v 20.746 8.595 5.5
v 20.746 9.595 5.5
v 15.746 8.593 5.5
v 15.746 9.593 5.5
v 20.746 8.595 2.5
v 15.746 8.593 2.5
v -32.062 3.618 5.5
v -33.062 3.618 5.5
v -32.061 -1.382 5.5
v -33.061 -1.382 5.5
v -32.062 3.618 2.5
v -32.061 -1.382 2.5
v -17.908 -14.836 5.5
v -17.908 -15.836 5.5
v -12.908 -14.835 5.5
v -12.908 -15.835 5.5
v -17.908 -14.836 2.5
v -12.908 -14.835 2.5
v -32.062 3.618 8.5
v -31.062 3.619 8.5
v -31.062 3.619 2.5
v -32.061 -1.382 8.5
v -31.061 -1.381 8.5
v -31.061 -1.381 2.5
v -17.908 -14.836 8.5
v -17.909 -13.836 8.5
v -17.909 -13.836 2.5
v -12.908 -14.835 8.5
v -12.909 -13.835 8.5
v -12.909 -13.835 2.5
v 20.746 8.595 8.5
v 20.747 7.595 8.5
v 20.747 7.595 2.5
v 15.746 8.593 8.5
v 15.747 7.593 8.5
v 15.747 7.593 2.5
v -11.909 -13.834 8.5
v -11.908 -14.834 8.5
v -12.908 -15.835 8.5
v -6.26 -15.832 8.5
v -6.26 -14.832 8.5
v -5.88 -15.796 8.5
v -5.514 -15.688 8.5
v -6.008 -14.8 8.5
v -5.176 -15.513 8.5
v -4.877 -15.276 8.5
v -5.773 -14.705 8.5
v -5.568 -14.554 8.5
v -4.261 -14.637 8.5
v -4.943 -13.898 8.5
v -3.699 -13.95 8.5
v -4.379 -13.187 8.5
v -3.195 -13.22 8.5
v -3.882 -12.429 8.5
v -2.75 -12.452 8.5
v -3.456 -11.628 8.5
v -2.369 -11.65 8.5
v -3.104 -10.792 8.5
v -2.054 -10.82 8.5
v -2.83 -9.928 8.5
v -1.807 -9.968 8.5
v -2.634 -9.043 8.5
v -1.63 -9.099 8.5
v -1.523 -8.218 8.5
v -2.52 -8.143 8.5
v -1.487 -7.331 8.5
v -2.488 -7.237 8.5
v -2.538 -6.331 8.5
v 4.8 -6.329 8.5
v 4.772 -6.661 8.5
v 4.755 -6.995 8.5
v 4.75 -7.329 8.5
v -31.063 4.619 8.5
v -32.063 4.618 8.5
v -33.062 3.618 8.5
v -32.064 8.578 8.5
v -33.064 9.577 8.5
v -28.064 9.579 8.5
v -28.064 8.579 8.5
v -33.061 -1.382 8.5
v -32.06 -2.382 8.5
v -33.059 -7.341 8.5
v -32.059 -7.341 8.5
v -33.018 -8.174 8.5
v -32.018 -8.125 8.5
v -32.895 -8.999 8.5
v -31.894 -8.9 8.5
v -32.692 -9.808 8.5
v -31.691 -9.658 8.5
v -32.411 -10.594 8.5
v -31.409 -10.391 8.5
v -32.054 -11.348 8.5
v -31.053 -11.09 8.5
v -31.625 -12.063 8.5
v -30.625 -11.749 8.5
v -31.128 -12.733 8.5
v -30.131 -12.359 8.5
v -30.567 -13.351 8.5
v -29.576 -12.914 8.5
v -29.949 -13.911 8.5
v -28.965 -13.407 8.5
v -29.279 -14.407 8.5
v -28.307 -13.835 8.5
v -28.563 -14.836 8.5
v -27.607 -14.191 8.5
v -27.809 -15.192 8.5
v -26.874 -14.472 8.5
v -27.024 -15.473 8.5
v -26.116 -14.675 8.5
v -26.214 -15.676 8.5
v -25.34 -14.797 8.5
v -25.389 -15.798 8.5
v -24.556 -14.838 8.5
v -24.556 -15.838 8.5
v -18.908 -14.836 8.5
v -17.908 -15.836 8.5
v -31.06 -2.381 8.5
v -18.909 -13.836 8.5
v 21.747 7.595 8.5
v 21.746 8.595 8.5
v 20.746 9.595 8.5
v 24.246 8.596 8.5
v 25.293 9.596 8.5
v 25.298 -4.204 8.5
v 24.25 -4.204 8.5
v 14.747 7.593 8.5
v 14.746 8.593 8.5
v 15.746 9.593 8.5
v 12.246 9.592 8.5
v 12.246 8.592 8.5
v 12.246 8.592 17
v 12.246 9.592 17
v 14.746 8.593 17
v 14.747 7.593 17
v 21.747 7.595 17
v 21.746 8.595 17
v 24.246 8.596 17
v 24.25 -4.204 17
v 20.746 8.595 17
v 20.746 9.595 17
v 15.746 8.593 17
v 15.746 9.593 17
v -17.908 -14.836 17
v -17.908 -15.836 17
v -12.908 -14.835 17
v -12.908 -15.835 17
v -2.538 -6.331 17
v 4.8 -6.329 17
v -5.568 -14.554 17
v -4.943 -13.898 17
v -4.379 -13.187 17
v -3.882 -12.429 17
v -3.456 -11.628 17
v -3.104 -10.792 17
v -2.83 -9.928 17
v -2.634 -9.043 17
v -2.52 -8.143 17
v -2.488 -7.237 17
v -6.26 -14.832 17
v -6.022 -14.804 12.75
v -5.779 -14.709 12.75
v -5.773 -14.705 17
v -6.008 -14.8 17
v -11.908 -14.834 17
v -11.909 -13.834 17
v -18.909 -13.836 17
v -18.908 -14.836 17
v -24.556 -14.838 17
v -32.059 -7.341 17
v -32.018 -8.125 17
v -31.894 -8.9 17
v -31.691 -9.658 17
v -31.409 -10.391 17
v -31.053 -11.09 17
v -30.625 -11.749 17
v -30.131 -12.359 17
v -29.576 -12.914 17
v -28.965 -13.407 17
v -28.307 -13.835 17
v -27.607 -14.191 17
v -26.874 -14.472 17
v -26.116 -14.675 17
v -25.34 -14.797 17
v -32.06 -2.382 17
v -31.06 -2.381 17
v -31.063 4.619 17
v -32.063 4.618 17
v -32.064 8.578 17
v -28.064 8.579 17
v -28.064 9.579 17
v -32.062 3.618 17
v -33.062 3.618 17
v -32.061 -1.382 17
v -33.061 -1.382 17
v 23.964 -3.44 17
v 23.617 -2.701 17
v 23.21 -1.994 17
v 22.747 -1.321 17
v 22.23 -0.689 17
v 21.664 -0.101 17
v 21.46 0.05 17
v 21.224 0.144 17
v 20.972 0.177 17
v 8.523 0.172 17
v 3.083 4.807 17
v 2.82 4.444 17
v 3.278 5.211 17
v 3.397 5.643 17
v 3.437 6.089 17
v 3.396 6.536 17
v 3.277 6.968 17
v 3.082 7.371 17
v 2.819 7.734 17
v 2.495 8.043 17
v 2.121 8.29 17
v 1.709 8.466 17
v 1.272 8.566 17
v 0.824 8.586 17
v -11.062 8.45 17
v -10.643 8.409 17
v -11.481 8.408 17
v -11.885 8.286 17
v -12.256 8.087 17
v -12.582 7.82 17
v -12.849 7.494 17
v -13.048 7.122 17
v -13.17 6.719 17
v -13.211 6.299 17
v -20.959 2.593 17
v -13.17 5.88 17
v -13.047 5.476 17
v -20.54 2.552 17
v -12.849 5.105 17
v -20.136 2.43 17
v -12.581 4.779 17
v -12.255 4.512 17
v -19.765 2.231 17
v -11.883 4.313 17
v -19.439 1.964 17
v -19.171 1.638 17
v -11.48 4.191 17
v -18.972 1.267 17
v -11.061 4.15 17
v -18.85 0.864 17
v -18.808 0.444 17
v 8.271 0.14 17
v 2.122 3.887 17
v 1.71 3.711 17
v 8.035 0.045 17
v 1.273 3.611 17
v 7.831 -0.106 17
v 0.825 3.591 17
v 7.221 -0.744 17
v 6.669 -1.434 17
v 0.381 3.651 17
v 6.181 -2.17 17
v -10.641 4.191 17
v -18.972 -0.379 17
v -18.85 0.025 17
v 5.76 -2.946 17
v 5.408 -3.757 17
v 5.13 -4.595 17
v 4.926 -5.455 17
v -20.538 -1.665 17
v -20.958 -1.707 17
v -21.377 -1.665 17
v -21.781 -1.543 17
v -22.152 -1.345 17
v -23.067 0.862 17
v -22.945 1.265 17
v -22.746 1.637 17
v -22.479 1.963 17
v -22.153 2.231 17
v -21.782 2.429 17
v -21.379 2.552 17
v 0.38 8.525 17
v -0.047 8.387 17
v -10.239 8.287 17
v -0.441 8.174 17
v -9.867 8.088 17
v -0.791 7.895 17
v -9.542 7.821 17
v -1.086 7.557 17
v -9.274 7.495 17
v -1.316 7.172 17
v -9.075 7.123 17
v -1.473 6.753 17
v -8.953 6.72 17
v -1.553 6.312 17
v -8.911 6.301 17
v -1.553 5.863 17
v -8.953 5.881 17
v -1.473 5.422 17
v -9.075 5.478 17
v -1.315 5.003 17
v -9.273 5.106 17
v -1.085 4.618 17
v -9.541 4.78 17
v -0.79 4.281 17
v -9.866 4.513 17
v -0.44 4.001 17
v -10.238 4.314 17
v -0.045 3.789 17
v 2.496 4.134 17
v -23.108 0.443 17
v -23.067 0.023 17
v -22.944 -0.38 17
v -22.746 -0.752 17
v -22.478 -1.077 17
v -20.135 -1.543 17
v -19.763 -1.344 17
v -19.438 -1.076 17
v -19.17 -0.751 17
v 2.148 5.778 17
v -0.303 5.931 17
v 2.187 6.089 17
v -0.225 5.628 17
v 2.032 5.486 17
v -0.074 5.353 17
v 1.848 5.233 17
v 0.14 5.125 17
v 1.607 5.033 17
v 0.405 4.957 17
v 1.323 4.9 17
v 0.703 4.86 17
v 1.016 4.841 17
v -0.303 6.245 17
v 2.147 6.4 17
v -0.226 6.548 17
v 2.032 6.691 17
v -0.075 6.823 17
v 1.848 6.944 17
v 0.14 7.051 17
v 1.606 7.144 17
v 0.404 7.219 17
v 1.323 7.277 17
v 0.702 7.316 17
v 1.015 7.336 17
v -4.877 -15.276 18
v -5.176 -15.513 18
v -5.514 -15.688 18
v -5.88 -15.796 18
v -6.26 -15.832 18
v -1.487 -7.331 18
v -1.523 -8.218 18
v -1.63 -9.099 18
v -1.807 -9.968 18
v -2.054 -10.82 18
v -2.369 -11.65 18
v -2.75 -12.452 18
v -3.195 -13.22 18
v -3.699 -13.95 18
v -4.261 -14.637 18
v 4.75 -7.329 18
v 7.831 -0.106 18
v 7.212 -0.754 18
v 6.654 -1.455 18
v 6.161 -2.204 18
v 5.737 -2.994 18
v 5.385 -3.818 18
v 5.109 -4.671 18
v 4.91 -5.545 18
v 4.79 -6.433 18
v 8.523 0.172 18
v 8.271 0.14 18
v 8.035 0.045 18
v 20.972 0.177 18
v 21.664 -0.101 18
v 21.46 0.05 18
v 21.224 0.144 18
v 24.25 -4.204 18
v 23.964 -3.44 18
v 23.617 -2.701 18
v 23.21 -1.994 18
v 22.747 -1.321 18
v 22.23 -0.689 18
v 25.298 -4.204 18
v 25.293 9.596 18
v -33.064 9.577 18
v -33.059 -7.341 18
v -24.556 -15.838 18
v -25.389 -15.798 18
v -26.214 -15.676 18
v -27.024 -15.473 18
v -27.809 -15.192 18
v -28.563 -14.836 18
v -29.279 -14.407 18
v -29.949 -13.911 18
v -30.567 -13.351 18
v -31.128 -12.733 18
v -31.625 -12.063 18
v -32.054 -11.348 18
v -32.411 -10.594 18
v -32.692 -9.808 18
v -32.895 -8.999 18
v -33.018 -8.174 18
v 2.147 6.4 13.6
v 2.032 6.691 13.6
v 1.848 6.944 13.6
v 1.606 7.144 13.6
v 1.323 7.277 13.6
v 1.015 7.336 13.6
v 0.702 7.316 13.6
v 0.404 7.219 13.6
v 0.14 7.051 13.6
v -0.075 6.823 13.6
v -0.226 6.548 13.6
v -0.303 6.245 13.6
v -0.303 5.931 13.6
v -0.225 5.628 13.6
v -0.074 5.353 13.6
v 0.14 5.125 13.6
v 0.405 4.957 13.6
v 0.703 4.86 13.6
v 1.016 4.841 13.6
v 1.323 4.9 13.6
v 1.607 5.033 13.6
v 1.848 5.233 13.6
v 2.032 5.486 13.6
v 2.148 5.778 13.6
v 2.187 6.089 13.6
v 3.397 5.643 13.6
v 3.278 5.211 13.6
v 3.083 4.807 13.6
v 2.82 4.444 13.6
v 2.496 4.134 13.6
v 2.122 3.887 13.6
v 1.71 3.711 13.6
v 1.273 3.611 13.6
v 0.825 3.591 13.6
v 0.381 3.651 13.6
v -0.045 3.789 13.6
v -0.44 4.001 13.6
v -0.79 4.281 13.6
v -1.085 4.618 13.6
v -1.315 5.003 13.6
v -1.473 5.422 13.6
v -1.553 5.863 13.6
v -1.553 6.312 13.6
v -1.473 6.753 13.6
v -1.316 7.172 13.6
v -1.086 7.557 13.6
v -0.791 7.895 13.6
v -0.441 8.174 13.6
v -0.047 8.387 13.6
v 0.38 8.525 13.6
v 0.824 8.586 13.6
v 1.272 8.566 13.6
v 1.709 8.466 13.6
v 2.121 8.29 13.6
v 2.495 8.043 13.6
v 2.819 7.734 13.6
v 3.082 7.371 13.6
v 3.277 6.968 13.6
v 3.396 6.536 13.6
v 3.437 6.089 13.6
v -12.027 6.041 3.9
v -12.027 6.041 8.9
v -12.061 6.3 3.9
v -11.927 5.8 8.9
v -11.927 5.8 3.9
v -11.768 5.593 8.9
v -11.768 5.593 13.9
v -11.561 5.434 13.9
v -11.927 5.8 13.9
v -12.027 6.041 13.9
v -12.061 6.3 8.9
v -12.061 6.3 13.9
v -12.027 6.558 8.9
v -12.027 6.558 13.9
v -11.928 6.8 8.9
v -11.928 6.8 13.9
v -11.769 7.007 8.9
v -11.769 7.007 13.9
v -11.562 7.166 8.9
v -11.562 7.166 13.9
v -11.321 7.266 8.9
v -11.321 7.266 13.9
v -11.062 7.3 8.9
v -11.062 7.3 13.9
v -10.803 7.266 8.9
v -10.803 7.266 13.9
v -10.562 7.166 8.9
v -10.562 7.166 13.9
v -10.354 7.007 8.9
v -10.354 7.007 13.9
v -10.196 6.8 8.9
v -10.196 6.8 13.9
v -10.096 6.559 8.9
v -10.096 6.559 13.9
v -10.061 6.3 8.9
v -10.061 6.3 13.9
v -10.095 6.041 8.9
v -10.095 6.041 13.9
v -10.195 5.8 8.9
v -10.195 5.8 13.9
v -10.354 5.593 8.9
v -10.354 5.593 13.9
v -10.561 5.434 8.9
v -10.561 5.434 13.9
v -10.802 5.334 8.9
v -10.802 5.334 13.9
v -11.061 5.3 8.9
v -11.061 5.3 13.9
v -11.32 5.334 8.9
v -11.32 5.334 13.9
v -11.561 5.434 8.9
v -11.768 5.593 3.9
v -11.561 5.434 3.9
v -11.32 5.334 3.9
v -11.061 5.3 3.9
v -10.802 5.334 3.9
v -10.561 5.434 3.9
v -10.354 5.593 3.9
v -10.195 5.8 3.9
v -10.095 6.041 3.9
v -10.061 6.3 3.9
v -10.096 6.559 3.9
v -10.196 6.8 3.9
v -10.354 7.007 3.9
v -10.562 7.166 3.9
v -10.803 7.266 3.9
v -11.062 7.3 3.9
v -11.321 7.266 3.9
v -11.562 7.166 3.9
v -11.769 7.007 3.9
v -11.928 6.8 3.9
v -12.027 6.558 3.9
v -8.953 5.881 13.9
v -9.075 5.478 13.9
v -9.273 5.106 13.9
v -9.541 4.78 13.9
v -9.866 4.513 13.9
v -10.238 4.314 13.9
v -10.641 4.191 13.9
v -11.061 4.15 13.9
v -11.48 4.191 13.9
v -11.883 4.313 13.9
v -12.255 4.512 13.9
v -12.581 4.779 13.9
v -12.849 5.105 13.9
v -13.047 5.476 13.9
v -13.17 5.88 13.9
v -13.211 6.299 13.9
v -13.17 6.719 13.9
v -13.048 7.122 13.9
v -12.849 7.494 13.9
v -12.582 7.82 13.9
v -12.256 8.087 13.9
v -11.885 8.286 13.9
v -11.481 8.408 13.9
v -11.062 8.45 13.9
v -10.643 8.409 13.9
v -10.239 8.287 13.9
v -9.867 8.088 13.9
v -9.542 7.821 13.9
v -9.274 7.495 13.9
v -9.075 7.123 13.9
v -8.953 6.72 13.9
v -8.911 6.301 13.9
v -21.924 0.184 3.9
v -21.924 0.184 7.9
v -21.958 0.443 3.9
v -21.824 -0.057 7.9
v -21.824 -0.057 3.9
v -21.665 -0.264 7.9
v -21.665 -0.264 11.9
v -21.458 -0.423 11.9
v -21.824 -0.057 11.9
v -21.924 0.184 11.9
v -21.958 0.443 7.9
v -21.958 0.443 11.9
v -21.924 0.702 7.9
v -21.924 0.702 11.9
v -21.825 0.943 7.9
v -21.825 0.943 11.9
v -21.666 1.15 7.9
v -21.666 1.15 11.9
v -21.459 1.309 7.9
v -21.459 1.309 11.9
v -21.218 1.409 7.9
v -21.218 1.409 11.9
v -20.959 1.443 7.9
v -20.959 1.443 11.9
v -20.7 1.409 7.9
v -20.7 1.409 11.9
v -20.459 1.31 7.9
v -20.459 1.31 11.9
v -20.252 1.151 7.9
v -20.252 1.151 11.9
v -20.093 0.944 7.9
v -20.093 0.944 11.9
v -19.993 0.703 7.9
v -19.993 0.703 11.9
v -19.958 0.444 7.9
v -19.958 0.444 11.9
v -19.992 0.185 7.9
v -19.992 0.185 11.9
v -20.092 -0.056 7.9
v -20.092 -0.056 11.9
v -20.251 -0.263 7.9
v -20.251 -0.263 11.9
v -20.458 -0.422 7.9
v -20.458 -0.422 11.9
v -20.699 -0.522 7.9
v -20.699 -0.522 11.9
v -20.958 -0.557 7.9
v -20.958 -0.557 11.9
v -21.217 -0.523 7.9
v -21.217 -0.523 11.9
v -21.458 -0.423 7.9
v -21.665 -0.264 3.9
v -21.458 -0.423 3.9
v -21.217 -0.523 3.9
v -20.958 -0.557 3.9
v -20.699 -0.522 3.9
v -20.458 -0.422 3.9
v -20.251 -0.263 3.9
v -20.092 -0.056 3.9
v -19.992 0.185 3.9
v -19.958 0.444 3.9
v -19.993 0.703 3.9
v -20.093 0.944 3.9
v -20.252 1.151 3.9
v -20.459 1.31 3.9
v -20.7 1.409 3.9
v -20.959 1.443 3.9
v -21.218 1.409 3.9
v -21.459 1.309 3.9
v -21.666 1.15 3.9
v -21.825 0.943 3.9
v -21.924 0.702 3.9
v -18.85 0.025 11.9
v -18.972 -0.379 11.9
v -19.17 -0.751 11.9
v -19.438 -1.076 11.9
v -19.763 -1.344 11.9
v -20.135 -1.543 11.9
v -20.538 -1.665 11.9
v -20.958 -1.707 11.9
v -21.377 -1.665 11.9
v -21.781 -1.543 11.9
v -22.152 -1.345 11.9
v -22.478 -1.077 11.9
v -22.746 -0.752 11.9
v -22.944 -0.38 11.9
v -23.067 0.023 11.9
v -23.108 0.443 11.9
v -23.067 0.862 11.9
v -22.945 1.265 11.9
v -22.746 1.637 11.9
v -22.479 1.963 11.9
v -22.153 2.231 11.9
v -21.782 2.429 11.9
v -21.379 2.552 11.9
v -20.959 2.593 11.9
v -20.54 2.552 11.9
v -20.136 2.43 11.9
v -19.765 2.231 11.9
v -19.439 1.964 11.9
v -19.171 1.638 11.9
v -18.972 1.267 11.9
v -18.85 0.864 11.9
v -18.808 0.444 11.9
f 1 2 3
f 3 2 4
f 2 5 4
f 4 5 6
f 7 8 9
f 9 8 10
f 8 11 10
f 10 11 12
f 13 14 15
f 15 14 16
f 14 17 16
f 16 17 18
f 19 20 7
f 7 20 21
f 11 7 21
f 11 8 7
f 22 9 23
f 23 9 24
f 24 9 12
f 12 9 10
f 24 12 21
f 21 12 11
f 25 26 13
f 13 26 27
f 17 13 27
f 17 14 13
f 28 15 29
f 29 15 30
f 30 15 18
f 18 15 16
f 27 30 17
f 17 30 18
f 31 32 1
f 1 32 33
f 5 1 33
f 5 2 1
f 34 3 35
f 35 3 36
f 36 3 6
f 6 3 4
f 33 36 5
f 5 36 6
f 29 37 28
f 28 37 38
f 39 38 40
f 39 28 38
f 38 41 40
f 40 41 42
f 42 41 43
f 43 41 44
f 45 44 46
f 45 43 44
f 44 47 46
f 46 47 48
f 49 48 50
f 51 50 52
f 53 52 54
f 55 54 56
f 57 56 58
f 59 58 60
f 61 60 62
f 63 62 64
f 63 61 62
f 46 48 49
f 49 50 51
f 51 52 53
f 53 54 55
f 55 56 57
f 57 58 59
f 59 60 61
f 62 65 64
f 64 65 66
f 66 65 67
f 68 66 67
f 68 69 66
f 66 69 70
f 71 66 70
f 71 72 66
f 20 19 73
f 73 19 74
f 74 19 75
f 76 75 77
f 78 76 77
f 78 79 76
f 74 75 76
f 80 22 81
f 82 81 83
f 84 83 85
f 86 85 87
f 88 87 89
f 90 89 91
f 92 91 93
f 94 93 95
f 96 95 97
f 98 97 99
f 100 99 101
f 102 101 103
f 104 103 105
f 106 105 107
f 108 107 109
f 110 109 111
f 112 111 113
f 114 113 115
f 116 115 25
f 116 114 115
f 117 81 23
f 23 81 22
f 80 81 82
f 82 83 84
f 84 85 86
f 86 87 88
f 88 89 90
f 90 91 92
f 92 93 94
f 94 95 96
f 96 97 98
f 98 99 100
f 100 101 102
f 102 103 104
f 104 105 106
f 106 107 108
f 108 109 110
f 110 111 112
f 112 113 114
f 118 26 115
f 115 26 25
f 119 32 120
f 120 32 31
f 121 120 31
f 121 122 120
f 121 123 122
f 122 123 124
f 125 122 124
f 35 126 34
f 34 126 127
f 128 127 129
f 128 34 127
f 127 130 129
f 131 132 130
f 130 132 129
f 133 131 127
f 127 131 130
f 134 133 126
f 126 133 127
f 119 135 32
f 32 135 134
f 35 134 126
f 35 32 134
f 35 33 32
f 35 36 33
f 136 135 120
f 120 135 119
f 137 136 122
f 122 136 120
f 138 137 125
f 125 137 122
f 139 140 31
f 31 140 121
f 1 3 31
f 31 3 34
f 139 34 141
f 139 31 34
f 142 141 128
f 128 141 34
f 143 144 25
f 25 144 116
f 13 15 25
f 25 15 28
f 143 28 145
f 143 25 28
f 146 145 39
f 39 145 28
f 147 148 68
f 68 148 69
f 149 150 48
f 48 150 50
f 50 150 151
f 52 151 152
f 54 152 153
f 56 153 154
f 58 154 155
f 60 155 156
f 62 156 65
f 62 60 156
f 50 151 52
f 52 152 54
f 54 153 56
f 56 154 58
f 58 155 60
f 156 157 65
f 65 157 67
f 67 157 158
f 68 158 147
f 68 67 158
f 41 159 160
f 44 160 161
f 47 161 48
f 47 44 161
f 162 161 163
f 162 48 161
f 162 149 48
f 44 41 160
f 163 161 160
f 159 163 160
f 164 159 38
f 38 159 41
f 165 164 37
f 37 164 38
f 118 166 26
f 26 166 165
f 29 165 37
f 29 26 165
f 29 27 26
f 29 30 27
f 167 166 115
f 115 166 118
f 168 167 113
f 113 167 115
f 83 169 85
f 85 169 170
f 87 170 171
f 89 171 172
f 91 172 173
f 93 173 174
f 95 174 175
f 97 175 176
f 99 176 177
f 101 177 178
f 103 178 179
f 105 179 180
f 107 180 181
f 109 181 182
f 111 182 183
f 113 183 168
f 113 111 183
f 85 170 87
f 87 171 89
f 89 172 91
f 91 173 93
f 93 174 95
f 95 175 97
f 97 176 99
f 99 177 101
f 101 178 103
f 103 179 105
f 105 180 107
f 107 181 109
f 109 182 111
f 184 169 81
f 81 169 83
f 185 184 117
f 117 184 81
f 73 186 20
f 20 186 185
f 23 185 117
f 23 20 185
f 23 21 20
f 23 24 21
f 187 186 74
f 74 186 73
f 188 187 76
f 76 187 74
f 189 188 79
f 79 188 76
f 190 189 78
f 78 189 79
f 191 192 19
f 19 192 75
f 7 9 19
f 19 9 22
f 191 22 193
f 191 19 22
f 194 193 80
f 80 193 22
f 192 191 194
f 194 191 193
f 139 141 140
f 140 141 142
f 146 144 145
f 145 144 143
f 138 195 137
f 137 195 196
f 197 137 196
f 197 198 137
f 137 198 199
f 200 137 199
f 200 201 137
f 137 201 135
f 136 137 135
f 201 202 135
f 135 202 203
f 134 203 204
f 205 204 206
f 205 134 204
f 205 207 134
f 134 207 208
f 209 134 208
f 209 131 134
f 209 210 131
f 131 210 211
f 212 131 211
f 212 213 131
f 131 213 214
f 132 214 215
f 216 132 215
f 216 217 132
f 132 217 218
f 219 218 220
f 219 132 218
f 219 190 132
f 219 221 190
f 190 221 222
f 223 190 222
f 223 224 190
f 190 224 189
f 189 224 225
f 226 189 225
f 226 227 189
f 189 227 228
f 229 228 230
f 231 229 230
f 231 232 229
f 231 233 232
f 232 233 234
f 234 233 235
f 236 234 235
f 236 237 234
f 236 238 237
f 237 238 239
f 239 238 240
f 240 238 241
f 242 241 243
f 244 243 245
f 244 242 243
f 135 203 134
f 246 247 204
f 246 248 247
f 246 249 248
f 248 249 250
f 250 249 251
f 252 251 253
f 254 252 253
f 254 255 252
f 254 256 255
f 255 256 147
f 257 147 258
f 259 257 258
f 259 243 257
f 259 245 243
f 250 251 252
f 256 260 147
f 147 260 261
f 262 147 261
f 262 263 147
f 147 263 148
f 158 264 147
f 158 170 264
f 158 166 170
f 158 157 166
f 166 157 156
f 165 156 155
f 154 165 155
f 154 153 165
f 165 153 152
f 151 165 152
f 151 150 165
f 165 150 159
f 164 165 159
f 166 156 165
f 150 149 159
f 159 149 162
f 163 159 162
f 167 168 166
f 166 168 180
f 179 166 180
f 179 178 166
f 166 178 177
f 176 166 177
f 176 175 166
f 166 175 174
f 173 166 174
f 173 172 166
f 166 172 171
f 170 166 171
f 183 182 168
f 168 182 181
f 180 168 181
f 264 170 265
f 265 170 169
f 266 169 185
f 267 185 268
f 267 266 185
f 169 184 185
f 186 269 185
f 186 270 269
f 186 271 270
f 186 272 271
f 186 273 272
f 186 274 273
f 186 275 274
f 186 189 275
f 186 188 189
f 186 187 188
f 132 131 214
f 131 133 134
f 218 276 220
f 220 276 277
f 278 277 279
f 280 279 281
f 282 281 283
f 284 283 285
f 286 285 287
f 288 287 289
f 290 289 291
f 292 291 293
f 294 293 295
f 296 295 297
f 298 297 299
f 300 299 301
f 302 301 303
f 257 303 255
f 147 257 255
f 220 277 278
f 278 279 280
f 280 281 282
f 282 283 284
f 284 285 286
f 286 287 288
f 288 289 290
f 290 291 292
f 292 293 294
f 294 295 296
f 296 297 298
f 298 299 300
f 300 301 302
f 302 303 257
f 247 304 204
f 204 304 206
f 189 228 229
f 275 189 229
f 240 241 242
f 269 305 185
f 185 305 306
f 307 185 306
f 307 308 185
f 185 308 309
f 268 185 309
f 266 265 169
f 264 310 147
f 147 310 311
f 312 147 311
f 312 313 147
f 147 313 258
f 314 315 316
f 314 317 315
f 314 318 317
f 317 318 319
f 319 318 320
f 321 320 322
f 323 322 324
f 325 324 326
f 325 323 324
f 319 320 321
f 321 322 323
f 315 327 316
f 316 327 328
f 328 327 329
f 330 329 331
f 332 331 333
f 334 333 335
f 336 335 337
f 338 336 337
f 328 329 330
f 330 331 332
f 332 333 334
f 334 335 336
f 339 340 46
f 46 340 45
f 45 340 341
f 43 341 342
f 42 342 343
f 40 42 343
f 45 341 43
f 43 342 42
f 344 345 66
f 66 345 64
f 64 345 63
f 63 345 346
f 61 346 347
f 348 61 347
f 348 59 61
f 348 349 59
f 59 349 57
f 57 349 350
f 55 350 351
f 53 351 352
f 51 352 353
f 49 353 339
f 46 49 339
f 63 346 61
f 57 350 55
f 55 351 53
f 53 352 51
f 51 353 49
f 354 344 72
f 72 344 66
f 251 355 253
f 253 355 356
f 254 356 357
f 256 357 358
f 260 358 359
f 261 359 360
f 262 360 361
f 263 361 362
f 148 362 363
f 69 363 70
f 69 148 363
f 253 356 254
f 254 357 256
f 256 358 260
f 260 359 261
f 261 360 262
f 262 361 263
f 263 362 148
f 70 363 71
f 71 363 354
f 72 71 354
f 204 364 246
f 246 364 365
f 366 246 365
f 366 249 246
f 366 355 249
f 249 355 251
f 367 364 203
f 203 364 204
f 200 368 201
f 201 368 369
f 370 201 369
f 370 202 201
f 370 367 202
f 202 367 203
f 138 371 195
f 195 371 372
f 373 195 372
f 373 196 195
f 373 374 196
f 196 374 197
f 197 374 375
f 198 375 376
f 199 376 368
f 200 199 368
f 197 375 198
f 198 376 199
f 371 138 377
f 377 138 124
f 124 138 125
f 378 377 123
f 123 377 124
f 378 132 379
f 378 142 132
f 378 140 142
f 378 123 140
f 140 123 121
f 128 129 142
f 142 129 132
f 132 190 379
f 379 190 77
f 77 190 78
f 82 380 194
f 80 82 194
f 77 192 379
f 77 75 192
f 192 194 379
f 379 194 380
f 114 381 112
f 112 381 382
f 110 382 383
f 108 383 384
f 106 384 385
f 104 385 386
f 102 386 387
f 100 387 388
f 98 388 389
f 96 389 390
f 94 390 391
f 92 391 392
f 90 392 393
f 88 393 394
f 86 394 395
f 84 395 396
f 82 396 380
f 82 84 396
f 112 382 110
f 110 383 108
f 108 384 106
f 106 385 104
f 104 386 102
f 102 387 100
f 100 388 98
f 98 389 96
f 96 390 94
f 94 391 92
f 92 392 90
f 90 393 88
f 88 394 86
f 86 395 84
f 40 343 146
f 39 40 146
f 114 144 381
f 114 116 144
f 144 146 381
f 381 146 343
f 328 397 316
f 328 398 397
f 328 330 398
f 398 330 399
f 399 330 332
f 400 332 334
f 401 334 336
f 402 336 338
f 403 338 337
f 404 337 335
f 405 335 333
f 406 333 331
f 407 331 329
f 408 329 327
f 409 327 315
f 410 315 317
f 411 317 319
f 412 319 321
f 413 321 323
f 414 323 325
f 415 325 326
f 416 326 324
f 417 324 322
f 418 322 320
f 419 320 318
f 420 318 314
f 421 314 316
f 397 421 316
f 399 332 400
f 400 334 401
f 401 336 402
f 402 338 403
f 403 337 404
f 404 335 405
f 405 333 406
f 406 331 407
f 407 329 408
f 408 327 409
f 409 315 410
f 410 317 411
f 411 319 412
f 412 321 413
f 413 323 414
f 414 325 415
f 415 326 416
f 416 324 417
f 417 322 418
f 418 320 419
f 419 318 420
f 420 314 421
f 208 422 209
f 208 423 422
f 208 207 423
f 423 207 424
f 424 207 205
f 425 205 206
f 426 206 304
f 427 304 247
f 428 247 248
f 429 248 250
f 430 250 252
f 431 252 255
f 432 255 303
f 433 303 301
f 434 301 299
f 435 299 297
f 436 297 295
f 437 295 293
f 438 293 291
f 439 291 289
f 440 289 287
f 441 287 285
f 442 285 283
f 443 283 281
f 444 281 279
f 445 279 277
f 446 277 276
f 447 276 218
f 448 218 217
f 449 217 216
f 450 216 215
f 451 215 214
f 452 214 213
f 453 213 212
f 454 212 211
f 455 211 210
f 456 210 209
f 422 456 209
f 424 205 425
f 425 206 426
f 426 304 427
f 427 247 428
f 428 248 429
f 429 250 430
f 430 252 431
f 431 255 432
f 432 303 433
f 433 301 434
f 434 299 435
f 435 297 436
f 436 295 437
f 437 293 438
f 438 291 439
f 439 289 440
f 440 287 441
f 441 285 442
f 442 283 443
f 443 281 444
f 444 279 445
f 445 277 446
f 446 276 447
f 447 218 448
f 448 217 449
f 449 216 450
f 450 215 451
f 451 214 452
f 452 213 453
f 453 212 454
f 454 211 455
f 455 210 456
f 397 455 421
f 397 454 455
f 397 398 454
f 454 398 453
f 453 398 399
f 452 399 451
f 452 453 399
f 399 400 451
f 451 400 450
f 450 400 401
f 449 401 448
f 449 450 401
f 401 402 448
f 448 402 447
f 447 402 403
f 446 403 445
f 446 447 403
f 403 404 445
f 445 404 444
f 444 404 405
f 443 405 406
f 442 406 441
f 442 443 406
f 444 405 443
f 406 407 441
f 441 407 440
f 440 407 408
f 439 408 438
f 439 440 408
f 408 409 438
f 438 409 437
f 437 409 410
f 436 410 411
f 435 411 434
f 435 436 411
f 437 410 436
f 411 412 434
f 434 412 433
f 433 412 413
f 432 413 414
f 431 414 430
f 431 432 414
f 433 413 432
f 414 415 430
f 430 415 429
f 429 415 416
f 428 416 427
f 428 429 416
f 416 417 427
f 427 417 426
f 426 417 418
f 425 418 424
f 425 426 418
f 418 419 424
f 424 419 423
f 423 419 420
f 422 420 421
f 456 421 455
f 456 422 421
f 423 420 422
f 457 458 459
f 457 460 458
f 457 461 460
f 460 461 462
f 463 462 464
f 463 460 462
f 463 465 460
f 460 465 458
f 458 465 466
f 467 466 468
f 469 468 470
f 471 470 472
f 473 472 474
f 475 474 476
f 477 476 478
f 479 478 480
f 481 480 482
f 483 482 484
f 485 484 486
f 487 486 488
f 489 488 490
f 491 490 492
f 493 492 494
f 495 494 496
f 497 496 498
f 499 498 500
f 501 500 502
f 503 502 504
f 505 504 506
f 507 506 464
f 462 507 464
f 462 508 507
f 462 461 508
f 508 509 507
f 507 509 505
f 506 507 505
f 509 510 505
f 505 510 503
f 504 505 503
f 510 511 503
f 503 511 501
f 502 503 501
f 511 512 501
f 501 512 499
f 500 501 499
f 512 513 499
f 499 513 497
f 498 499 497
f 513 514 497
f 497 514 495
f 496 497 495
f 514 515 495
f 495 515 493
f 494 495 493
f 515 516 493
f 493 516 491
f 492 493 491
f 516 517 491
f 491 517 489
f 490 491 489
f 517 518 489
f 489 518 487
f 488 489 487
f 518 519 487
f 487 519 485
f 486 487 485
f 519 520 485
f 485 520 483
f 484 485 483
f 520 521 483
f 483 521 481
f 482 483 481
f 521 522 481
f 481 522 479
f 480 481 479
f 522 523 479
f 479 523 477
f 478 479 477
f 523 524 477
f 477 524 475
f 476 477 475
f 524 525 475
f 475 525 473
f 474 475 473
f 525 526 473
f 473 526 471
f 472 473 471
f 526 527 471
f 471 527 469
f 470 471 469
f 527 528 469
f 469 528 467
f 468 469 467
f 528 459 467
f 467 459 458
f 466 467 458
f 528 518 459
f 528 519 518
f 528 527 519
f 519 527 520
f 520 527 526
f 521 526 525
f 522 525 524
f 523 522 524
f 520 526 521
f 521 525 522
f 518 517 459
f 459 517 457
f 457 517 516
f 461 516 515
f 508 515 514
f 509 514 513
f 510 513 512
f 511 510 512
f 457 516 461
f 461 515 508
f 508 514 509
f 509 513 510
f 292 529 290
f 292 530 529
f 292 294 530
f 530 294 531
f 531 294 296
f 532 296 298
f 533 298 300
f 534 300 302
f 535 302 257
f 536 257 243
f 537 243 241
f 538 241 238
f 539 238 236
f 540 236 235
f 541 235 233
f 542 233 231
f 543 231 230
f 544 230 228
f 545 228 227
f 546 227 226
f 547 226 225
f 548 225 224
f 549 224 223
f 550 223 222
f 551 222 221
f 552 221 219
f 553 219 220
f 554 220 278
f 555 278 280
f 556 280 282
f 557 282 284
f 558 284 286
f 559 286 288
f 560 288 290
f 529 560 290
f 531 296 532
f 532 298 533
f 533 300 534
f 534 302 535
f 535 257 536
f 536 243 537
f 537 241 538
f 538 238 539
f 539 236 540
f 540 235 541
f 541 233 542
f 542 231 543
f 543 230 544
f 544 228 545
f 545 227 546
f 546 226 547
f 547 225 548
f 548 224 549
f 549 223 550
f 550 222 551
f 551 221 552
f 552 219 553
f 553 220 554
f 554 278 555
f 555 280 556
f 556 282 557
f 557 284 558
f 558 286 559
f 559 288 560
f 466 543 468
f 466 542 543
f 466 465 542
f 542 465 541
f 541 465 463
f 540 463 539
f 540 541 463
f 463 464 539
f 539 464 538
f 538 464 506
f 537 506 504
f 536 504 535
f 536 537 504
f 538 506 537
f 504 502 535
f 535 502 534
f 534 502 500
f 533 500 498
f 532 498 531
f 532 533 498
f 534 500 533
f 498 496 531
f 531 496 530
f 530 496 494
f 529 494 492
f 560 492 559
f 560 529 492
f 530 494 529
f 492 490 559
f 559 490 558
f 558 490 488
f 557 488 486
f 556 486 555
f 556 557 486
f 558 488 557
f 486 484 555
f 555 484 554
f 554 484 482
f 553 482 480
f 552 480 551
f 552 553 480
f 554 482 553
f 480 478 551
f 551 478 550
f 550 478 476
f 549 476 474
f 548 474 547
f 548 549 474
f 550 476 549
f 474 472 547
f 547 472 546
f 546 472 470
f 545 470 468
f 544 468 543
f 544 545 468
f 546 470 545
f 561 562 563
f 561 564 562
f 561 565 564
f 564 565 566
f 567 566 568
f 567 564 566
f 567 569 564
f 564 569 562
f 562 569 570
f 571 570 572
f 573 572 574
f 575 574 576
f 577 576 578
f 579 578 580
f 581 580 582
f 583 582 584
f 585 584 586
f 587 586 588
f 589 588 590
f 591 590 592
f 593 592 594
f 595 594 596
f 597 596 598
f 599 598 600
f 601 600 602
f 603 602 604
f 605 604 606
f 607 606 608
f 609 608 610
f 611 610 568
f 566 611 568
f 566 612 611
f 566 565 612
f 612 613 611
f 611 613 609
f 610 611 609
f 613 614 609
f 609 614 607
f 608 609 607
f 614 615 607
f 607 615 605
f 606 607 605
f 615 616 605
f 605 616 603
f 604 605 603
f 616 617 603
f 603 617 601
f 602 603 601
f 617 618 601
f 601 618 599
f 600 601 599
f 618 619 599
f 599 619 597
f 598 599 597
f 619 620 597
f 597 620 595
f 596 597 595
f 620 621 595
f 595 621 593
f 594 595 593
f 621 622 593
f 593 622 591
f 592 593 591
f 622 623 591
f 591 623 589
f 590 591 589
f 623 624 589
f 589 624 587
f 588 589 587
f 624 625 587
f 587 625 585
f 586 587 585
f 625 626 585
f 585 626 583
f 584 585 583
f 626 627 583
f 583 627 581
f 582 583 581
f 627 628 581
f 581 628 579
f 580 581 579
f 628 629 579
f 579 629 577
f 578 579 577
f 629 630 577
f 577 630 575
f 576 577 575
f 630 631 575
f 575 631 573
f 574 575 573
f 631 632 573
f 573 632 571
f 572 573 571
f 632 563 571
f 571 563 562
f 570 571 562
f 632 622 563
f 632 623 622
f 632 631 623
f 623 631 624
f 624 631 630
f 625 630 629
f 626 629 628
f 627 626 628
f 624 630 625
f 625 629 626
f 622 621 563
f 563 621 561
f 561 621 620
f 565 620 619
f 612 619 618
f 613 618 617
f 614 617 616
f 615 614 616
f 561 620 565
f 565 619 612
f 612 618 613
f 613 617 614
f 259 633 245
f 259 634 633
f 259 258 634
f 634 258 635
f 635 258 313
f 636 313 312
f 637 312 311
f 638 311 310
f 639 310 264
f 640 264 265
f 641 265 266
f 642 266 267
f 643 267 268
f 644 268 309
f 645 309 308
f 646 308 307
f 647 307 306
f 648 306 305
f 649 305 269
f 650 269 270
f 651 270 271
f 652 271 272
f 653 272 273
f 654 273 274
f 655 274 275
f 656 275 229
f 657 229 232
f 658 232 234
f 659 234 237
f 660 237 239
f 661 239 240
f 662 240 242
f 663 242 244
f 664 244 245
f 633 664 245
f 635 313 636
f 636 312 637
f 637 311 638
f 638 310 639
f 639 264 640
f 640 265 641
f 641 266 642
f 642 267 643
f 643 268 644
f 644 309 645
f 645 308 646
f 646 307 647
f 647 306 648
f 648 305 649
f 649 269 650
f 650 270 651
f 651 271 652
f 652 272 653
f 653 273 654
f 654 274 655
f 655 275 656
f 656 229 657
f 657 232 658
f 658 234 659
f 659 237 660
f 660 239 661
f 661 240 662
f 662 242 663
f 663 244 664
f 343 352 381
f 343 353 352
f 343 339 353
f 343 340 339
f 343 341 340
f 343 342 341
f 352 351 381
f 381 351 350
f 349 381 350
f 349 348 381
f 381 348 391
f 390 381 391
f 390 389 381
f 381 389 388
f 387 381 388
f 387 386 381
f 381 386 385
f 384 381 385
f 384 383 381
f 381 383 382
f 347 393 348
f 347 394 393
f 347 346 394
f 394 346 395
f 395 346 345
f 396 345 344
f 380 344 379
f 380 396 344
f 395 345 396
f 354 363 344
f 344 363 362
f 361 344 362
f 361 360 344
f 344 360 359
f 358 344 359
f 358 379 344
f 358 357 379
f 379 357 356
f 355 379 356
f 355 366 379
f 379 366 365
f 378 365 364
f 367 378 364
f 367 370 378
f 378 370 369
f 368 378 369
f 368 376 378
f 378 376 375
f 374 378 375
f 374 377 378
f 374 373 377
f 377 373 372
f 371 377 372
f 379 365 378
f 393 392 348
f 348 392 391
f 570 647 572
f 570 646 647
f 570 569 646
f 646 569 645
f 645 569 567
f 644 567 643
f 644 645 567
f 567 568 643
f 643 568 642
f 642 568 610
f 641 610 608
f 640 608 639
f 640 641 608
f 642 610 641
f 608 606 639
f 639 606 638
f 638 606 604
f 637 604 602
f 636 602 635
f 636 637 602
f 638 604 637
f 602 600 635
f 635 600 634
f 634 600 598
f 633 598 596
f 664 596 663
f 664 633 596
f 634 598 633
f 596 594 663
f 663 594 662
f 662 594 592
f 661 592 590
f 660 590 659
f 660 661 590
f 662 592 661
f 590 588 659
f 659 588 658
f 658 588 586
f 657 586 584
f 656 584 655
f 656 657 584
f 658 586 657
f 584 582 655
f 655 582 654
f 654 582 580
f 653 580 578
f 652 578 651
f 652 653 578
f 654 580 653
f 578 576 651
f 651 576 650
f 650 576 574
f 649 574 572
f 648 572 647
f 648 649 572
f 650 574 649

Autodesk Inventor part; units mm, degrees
ref_plane "Work Plane1" through (0, 0, 18) normal (0, 0, 1) x (1, 0, 0)
sketch "Sketch1" plane through (0, 0, 18) normal (0, 0, 1) x (1, 0, 0)
  circle A0 centre (0.9362, 6.0941) radius 2.5 projected
  circle A1 centre (0.9362, 6.0941) radius 1.25
  point P0 (0, 0)
ref_plane "Work Plane2" through (-2.3703, 2.7876, 13.6) normal (0, 0, 1) x (0.9119, -0.4105, 0)
ref_plane "Work Plane3" through (-2.3703, 2.7876, 13.6) normal (0, 0, 1) x (0.9119, -0.4105, 0)
extrude "Extrusion2" add sketch "Sketch1" against normal up to surface (4.4 mm away)
sketch "Sketch2" plane through (0, 0, 18) normal (0, 0, 1) x (1, 0, 0)
  circle A0 centre (-11.0618, 6.3096) radius 2.15 projected
  point P0 (0, 0)
ref_plane "Work Plane4" through (-14.169, 3.2822, 13.9) normal (0, 0, 1) x (0.9993, -0.0374, 0)
extrude "Extrusion3" add sketch "Sketch2" against normal up to surface (4.1 mm away)
sketch "Sketch3" plane through (-11.0618, 6.3096, 13.9) normal (0, 0, -1) x (-1, 0, 0)
  circle A0 centre (0, 0) radius 1 projected
  point P0 (-11.0618, -6.3096)
extrude "Extrusion4" add sketch "Sketch3" along normal blind 10
sketch "Sketch4" plane through (0, 0, 18) normal (0, 0, 1) x (1, 0, 0)
  circle A0 centre (-20.9608, 0.4563) radius 2.15 projected
  point P0 (0, 0)
ref_plane "Work Plane5" through (-25.1421, -3.7287, 11.9) normal (0, 0, 1) x (0.73, 0.6834, 0)
extrude "Extrusion5" add sketch "Sketch4" against normal up to surface (6.1 mm away)
sketch "Sketch5" plane through (-20.9608, 0.4563, 11.9) normal (0, 0, -1) x (-1, 0, 0)
  circle A0 centre (0, 0) radius 1 projected
  point P0 (-20.9608, -0.4563)
extrude "Extrusion6" add sketch "Sketch5" along normal up to surface (8 mm away)
sketch "Sketch6" plane through (0, 0, 18) normal (0, 0, 1) x (1, 0, 0)
  line L0 (-18.7174, -15.8242) -> (-6.2675, -15.8242)
  arc A0 (-6.2675, -15.8242) -> (-4.8841, -15.2686) centre (-6.2675, -13.8242) ccw
  arc A1 (-4.8841, -15.2686) -> (-1.4924, -7.3242) centre (-12.4924, -7.3242) ccw
  line L1 (-1.4924, -7.3242) -> (4.745, -7.3242)
  arc A2 (7.8284, -0.102) -> (4.745, -7.3242) centre (14.745, -7.3242) ccw
  arc A3 (8.52, 0.1758) -> (7.8284, -0.102) centre (8.52, -0.8242) ccw
  line L2 (8.52, 0.1758) -> (20.9699, 0.1758)
  arc A4 (21.6616, -0.102) -> (20.9699, 0.1758) centre (20.9699, -0.8242) ccw
  arc A5 (24.2465, -4.2063) -> (21.6616, -0.102) centre (14.745, -7.3242) ccw
  line L3 (24.2465, -4.2063) -> (25.2939, -4.2063)
  line L4 (25.2939, -4.2063) -> (25.2939, 8.6758)
  line L5 (0.9362, 9.5941) -> (25.2939, 9.5941)
  line L6 (25.2939, 9.5941) -> (25.2939, 8.6758)
  line L7 (0.9362, 9.5941) -> (-33.0638, 9.5941)
  line L8 (-33.0638, 9.5941) -> (-33.0638, -7.3242)
  line L9 (-18.7174, -15.8242) -> (-24.5638, -15.8242)
  arc A6 (-33.0638, -7.3242) -> (-24.5638, -15.8242) centre (-24.5638, -7.3242) ccw projected
  point P0 (0, 0)
extrude "Extrusion7" add sketch "Sketch6" against normal blind 1
sketch "Sketch7" plane through (0, 0, 17) normal (0, 0, -1) x (-1, 0, 0)
  arc A0 (4.8841, -15.2686) -> (6.2675, -15.8242) centre (6.2675, -13.8242) ccw
  arc A1 (1.4924, -7.3242) -> (4.8841, -15.2686) centre (12.4924, -7.3242) ccw
  line L0 (1.4924, -7.3242) -> (-4.745, -7.3242)
  arc A2 (-4.745, -7.3242) -> (-4.7951, -6.3242) centre (-14.745, -7.3242) ccw
  line L1 (-24.2465, -4.2063) -> (-25.2939, -4.2063)
  line L2 (-25.2939, -4.2063) -> (-25.2939, 9.5941)
  arc A3 (5.5758, -14.5464) -> (6.2675, -14.8242) centre (6.2675, -13.8242) ccw
  arc A4 (2.5425, -6.3242) -> (5.5758, -14.5464) centre (12.4924, -7.3242) ccw
  line L3 (2.5425, -6.3242) -> (-3.7905, -6.3242)
  line L4 (-13.2939, 9.5941) -> (-12.2465, 9.5941)
  line L5 (-24.2465, -4.2063) -> (-24.2465, 3.5941)
  line L6 (-24.2465, 4.5941) -> (-24.2465, 8.5941)
  line L7 (-3.7905, -6.3242) -> (-4.7951, -6.3242)
  line L8 (-24.2465, 3.5941) -> (-24.2465, 8.5941)
  arc A5 (24.5638, -14.8242) -> (32.0638, -7.3242) centre (24.5638, -7.3242) ccw projected
  arc A6 (24.5638, -15.8242) -> (33.0638, -7.3242) centre (24.5638, -7.3242) ccw projected
  line L9 (17.9156, -14.8242) -> (12.9156, -14.8242)
  line L10 (12.9156, -13.8242) -> (17.9156, -13.8242)
  line L11 (12.9156, -14.8242) -> (12.9156, -15.8242)
  line L12 (17.9156, -14.8242) -> (17.9156, -15.8242)
  line L13 (17.9156, -13.8242) -> (18.9156, -13.8242)
  line L14 (18.9156, -13.8242) -> (18.9156, -14.8242)
  line L15 (12.9156, -13.8242) -> (11.9156, -13.8242)
  line L16 (11.9156, -13.8242) -> (11.9156, -14.8242)
  line L17 (24.5638, -15.8242) -> (17.9156, -15.8242)
  line L18 (12.9156, -15.8242) -> (6.2675, -15.8242)
  line L19 (11.9156, -14.8242) -> (6.2675, -14.8242)
  line L20 (24.5638, -14.8242) -> (18.9156, -14.8242)
  line L21 (17.9156, -14.8242) -> (12.9156, -14.8242)
  line L22 (32.0638, -1.365) -> (32.0638, 3.635)
  line L23 (33.0638, 3.635) -> (32.0638, 3.635)
  line L24 (32.0638, 3.635) -> (32.0638, -1.365)
  line L25 (32.0638, -1.365) -> (33.0638, -1.365)
  line L26 (32.0638, -2.365) -> (31.0638, -2.365)
  line L27 (31.0638, -2.365) -> (31.0638, 4.635)
  line L28 (31.0638, 4.635) -> (32.0638, 4.635)
  line L29 (32.0638, -2.365) -> (32.0638, -7.3242)
  line L30 (32.0638, 8.5941) -> (32.0638, 4.635)
  line L31 (32.0638, 3.635) -> (32.0638, -1.365)
  line L32 (33.0638, 9.5941) -> (33.0638, 3.635)
  line L33 (33.0638, -1.365) -> (33.0638, -7.3242)
  line L34 (33.0638, 9.5941) -> (33.0638, 3.635)
  line L35 (33.0638, -1.365) -> (33.0638, -7.3242)
  line L36 (32.0638, 8.5941) -> (28.0638, 8.5941)
  line L37 (28.0638, 8.5941) -> (28.0638, 9.5941)
  line L38 (-12.2465, 8.5941) -> (-12.2465, 9.5941)
  line L39 (-20.7465, 9.5941) -> (-20.7465, 8.5941)
  line L40 (-20.7465, 8.5941) -> (-15.7465, 8.5941)
  line L41 (-15.7465, 8.5941) -> (-15.7465, 9.5941)
  line L42 (-14.7465, 7.5941) -> (-21.7465, 7.5941)
  line L43 (-21.7465, 7.5941) -> (-21.7465, 8.5941)
  line L44 (-14.7465, 8.5941) -> (-14.7465, 7.5941)
  line L45 (-24.2465, 8.5941) -> (-21.7465, 8.5941)
  line L46 (-20.7465, 8.5941) -> (-15.7465, 8.5941)
  line L47 (-14.7465, 8.5941) -> (-12.2465, 8.5941)
  line L48 (-25.2939, 9.5941) -> (-20.7465, 9.5941)
  line L49 (-15.7465, 9.5941) -> (33.0638, 9.5941)
  line L50 (33.0638, 9.5941) -> (-15.7465, 9.5941)
  line L51 (-20.7465, 9.5941) -> (-25.2939, 9.5941)
  line L52 (-25.2939, 9.5941) -> (-20.7465, 9.5941)
  line L53 (-15.7465, 9.5941) -> (33.0638, 9.5941)
  point P0 (0, 0)
  point P1 (32.0638, 9.5941)
  point P2 (-24.2465, 9.5941)
  point P3 (15.4156, -14.8242)
  point P4 (15.4156, -14.3242)
  point P5 (33.0638, 1.135)
  point P6 (32.5638, 1.135)
  point P7 (-18.2465, 8.5941)
extrude "Extrusion9" add sketch "Sketch7" along normal blind 8.5
sketch "Sketch11" plane through (0, 0, 8.5) normal (0, 0, -1) x (-1, 0, 0)
  line L0 (17.9156, -13.8242) -> (12.9156, -13.8242)
  line L1 (12.9156, -13.8242) -> (17.9156, -13.8242)
  line L2 (12.9156, -14.8242) -> (17.9156, -14.8242)
  line L3 (17.9156, -13.8242) -> (12.9156, -13.8242)
  line L4 (12.9156, -13.8242) -> (12.9156, -14.8242)
  line L5 (12.9156, -14.8242) -> (17.9156, -14.8242)
  line L6 (17.9156, -14.8242) -> (17.9156, -13.8242)
  line L7 (17.9156, -13.8242) -> (12.9156, -14.8242) construction
  line L8 (12.9156, -13.8242) -> (17.9156, -14.8242) construction
  line L9 (31.0638, 3.635) -> (31.0638, -1.365)
  line L10 (31.0638, -1.365) -> (31.0638, 3.635)
  line L11 (32.0638, -1.365) -> (32.0638, 3.635)
  line L12 (32.0638, 3.635) -> (31.0638, 3.635)
  line L13 (31.0638, 3.635) -> (31.0638, -1.365)
  line L14 (31.0638, -1.365) -> (32.0638, -1.365)
  line L15 (32.0638, -1.365) -> (32.0638, 3.635)
  line L16 (32.0638, 3.635) -> (31.0638, -1.365) construction
  line L17 (31.0638, 3.635) -> (32.0638, -1.365) construction
  line L18 (-20.7465, 7.5941) -> (-15.7465, 7.5941)
  line L19 (-15.7465, 7.5941) -> (-20.7465, 7.5941)
  line L20 (-15.7465, 8.5941) -> (-20.7465, 8.5941)
  line L21 (-15.7465, 8.5941) -> (-20.7465, 8.5941)
  line L22 (-20.7465, 8.5941) -> (-20.7465, 7.5941)
  line L23 (-20.7465, 7.5941) -> (-15.7465, 7.5941)
  line L24 (-15.7465, 7.5941) -> (-15.7465, 8.5941)
  line L25 (-15.7465, 8.5941) -> (-20.7465, 7.5941) construction
  line L26 (-20.7465, 8.5941) -> (-15.7465, 7.5941) construction
  point P0 (0, 0)
  point P1 (15.4156, -14.3242)
  point P2 (31.5638, 1.135)
  point P3 (-18.2465, 8.0941)
extrude "Extrusion12" add sketch "Sketch11" along normal blind 6
sketch "Sketch12" plane through (-17.9156, -14.8242, 8.5) normal (-1, 0, 0) x (0, 0, 1)
  line L0 (-6, 0) -> (-3, 0)
  line L1 (0, 0) -> (-6, 0) projected
  line L2 (-3, 0) -> (-3, -1)
  line L3 (-3, -1) -> (-6, 0)
  point P0 (-8.5, 14.8242)
  dimension "d53" = 3
  dimension "d54" = 1
extrude "Extrusion13" add sketch "Sketch12" against normal blind 5
sketch "Sketch13" plane through (-32.0638, 3.635, 8.5) normal (0, 1, 0) x (1, 0, 0)
  line L0 (0, 6) -> (0, 3)
  line L1 (0, 0) -> (0, 6) projected
  line L2 (0, 3) -> (-1, 3)
  line L3 (-1, 3) -> (0, 6)
  point P0 (32.0638, 8.5)
  dimension "d57" = 3
  dimension "d58" = 1
extrude "Extrusion14" add sketch "Sketch13" against normal blind 5
sketch "Sketch14" plane through (20.7465, 7.5941, 8.5) normal (1, 0, 0) x (0, 0, -1)
  line L0 (6, 1) -> (3, 1)
  line L1 (0, 1) -> (6, 1) projected
  line L2 (3, 1) -> (3, 2)
  line L3 (3, 2) -> (6, 1)
  point P0 (8.5, -7.5941)
  dimension "d61" = 3
  dimension "d62" = 1
extrude "Extrusion15" add sketch "Sketch14" against normal blind 5
properties part number "frame1b"
